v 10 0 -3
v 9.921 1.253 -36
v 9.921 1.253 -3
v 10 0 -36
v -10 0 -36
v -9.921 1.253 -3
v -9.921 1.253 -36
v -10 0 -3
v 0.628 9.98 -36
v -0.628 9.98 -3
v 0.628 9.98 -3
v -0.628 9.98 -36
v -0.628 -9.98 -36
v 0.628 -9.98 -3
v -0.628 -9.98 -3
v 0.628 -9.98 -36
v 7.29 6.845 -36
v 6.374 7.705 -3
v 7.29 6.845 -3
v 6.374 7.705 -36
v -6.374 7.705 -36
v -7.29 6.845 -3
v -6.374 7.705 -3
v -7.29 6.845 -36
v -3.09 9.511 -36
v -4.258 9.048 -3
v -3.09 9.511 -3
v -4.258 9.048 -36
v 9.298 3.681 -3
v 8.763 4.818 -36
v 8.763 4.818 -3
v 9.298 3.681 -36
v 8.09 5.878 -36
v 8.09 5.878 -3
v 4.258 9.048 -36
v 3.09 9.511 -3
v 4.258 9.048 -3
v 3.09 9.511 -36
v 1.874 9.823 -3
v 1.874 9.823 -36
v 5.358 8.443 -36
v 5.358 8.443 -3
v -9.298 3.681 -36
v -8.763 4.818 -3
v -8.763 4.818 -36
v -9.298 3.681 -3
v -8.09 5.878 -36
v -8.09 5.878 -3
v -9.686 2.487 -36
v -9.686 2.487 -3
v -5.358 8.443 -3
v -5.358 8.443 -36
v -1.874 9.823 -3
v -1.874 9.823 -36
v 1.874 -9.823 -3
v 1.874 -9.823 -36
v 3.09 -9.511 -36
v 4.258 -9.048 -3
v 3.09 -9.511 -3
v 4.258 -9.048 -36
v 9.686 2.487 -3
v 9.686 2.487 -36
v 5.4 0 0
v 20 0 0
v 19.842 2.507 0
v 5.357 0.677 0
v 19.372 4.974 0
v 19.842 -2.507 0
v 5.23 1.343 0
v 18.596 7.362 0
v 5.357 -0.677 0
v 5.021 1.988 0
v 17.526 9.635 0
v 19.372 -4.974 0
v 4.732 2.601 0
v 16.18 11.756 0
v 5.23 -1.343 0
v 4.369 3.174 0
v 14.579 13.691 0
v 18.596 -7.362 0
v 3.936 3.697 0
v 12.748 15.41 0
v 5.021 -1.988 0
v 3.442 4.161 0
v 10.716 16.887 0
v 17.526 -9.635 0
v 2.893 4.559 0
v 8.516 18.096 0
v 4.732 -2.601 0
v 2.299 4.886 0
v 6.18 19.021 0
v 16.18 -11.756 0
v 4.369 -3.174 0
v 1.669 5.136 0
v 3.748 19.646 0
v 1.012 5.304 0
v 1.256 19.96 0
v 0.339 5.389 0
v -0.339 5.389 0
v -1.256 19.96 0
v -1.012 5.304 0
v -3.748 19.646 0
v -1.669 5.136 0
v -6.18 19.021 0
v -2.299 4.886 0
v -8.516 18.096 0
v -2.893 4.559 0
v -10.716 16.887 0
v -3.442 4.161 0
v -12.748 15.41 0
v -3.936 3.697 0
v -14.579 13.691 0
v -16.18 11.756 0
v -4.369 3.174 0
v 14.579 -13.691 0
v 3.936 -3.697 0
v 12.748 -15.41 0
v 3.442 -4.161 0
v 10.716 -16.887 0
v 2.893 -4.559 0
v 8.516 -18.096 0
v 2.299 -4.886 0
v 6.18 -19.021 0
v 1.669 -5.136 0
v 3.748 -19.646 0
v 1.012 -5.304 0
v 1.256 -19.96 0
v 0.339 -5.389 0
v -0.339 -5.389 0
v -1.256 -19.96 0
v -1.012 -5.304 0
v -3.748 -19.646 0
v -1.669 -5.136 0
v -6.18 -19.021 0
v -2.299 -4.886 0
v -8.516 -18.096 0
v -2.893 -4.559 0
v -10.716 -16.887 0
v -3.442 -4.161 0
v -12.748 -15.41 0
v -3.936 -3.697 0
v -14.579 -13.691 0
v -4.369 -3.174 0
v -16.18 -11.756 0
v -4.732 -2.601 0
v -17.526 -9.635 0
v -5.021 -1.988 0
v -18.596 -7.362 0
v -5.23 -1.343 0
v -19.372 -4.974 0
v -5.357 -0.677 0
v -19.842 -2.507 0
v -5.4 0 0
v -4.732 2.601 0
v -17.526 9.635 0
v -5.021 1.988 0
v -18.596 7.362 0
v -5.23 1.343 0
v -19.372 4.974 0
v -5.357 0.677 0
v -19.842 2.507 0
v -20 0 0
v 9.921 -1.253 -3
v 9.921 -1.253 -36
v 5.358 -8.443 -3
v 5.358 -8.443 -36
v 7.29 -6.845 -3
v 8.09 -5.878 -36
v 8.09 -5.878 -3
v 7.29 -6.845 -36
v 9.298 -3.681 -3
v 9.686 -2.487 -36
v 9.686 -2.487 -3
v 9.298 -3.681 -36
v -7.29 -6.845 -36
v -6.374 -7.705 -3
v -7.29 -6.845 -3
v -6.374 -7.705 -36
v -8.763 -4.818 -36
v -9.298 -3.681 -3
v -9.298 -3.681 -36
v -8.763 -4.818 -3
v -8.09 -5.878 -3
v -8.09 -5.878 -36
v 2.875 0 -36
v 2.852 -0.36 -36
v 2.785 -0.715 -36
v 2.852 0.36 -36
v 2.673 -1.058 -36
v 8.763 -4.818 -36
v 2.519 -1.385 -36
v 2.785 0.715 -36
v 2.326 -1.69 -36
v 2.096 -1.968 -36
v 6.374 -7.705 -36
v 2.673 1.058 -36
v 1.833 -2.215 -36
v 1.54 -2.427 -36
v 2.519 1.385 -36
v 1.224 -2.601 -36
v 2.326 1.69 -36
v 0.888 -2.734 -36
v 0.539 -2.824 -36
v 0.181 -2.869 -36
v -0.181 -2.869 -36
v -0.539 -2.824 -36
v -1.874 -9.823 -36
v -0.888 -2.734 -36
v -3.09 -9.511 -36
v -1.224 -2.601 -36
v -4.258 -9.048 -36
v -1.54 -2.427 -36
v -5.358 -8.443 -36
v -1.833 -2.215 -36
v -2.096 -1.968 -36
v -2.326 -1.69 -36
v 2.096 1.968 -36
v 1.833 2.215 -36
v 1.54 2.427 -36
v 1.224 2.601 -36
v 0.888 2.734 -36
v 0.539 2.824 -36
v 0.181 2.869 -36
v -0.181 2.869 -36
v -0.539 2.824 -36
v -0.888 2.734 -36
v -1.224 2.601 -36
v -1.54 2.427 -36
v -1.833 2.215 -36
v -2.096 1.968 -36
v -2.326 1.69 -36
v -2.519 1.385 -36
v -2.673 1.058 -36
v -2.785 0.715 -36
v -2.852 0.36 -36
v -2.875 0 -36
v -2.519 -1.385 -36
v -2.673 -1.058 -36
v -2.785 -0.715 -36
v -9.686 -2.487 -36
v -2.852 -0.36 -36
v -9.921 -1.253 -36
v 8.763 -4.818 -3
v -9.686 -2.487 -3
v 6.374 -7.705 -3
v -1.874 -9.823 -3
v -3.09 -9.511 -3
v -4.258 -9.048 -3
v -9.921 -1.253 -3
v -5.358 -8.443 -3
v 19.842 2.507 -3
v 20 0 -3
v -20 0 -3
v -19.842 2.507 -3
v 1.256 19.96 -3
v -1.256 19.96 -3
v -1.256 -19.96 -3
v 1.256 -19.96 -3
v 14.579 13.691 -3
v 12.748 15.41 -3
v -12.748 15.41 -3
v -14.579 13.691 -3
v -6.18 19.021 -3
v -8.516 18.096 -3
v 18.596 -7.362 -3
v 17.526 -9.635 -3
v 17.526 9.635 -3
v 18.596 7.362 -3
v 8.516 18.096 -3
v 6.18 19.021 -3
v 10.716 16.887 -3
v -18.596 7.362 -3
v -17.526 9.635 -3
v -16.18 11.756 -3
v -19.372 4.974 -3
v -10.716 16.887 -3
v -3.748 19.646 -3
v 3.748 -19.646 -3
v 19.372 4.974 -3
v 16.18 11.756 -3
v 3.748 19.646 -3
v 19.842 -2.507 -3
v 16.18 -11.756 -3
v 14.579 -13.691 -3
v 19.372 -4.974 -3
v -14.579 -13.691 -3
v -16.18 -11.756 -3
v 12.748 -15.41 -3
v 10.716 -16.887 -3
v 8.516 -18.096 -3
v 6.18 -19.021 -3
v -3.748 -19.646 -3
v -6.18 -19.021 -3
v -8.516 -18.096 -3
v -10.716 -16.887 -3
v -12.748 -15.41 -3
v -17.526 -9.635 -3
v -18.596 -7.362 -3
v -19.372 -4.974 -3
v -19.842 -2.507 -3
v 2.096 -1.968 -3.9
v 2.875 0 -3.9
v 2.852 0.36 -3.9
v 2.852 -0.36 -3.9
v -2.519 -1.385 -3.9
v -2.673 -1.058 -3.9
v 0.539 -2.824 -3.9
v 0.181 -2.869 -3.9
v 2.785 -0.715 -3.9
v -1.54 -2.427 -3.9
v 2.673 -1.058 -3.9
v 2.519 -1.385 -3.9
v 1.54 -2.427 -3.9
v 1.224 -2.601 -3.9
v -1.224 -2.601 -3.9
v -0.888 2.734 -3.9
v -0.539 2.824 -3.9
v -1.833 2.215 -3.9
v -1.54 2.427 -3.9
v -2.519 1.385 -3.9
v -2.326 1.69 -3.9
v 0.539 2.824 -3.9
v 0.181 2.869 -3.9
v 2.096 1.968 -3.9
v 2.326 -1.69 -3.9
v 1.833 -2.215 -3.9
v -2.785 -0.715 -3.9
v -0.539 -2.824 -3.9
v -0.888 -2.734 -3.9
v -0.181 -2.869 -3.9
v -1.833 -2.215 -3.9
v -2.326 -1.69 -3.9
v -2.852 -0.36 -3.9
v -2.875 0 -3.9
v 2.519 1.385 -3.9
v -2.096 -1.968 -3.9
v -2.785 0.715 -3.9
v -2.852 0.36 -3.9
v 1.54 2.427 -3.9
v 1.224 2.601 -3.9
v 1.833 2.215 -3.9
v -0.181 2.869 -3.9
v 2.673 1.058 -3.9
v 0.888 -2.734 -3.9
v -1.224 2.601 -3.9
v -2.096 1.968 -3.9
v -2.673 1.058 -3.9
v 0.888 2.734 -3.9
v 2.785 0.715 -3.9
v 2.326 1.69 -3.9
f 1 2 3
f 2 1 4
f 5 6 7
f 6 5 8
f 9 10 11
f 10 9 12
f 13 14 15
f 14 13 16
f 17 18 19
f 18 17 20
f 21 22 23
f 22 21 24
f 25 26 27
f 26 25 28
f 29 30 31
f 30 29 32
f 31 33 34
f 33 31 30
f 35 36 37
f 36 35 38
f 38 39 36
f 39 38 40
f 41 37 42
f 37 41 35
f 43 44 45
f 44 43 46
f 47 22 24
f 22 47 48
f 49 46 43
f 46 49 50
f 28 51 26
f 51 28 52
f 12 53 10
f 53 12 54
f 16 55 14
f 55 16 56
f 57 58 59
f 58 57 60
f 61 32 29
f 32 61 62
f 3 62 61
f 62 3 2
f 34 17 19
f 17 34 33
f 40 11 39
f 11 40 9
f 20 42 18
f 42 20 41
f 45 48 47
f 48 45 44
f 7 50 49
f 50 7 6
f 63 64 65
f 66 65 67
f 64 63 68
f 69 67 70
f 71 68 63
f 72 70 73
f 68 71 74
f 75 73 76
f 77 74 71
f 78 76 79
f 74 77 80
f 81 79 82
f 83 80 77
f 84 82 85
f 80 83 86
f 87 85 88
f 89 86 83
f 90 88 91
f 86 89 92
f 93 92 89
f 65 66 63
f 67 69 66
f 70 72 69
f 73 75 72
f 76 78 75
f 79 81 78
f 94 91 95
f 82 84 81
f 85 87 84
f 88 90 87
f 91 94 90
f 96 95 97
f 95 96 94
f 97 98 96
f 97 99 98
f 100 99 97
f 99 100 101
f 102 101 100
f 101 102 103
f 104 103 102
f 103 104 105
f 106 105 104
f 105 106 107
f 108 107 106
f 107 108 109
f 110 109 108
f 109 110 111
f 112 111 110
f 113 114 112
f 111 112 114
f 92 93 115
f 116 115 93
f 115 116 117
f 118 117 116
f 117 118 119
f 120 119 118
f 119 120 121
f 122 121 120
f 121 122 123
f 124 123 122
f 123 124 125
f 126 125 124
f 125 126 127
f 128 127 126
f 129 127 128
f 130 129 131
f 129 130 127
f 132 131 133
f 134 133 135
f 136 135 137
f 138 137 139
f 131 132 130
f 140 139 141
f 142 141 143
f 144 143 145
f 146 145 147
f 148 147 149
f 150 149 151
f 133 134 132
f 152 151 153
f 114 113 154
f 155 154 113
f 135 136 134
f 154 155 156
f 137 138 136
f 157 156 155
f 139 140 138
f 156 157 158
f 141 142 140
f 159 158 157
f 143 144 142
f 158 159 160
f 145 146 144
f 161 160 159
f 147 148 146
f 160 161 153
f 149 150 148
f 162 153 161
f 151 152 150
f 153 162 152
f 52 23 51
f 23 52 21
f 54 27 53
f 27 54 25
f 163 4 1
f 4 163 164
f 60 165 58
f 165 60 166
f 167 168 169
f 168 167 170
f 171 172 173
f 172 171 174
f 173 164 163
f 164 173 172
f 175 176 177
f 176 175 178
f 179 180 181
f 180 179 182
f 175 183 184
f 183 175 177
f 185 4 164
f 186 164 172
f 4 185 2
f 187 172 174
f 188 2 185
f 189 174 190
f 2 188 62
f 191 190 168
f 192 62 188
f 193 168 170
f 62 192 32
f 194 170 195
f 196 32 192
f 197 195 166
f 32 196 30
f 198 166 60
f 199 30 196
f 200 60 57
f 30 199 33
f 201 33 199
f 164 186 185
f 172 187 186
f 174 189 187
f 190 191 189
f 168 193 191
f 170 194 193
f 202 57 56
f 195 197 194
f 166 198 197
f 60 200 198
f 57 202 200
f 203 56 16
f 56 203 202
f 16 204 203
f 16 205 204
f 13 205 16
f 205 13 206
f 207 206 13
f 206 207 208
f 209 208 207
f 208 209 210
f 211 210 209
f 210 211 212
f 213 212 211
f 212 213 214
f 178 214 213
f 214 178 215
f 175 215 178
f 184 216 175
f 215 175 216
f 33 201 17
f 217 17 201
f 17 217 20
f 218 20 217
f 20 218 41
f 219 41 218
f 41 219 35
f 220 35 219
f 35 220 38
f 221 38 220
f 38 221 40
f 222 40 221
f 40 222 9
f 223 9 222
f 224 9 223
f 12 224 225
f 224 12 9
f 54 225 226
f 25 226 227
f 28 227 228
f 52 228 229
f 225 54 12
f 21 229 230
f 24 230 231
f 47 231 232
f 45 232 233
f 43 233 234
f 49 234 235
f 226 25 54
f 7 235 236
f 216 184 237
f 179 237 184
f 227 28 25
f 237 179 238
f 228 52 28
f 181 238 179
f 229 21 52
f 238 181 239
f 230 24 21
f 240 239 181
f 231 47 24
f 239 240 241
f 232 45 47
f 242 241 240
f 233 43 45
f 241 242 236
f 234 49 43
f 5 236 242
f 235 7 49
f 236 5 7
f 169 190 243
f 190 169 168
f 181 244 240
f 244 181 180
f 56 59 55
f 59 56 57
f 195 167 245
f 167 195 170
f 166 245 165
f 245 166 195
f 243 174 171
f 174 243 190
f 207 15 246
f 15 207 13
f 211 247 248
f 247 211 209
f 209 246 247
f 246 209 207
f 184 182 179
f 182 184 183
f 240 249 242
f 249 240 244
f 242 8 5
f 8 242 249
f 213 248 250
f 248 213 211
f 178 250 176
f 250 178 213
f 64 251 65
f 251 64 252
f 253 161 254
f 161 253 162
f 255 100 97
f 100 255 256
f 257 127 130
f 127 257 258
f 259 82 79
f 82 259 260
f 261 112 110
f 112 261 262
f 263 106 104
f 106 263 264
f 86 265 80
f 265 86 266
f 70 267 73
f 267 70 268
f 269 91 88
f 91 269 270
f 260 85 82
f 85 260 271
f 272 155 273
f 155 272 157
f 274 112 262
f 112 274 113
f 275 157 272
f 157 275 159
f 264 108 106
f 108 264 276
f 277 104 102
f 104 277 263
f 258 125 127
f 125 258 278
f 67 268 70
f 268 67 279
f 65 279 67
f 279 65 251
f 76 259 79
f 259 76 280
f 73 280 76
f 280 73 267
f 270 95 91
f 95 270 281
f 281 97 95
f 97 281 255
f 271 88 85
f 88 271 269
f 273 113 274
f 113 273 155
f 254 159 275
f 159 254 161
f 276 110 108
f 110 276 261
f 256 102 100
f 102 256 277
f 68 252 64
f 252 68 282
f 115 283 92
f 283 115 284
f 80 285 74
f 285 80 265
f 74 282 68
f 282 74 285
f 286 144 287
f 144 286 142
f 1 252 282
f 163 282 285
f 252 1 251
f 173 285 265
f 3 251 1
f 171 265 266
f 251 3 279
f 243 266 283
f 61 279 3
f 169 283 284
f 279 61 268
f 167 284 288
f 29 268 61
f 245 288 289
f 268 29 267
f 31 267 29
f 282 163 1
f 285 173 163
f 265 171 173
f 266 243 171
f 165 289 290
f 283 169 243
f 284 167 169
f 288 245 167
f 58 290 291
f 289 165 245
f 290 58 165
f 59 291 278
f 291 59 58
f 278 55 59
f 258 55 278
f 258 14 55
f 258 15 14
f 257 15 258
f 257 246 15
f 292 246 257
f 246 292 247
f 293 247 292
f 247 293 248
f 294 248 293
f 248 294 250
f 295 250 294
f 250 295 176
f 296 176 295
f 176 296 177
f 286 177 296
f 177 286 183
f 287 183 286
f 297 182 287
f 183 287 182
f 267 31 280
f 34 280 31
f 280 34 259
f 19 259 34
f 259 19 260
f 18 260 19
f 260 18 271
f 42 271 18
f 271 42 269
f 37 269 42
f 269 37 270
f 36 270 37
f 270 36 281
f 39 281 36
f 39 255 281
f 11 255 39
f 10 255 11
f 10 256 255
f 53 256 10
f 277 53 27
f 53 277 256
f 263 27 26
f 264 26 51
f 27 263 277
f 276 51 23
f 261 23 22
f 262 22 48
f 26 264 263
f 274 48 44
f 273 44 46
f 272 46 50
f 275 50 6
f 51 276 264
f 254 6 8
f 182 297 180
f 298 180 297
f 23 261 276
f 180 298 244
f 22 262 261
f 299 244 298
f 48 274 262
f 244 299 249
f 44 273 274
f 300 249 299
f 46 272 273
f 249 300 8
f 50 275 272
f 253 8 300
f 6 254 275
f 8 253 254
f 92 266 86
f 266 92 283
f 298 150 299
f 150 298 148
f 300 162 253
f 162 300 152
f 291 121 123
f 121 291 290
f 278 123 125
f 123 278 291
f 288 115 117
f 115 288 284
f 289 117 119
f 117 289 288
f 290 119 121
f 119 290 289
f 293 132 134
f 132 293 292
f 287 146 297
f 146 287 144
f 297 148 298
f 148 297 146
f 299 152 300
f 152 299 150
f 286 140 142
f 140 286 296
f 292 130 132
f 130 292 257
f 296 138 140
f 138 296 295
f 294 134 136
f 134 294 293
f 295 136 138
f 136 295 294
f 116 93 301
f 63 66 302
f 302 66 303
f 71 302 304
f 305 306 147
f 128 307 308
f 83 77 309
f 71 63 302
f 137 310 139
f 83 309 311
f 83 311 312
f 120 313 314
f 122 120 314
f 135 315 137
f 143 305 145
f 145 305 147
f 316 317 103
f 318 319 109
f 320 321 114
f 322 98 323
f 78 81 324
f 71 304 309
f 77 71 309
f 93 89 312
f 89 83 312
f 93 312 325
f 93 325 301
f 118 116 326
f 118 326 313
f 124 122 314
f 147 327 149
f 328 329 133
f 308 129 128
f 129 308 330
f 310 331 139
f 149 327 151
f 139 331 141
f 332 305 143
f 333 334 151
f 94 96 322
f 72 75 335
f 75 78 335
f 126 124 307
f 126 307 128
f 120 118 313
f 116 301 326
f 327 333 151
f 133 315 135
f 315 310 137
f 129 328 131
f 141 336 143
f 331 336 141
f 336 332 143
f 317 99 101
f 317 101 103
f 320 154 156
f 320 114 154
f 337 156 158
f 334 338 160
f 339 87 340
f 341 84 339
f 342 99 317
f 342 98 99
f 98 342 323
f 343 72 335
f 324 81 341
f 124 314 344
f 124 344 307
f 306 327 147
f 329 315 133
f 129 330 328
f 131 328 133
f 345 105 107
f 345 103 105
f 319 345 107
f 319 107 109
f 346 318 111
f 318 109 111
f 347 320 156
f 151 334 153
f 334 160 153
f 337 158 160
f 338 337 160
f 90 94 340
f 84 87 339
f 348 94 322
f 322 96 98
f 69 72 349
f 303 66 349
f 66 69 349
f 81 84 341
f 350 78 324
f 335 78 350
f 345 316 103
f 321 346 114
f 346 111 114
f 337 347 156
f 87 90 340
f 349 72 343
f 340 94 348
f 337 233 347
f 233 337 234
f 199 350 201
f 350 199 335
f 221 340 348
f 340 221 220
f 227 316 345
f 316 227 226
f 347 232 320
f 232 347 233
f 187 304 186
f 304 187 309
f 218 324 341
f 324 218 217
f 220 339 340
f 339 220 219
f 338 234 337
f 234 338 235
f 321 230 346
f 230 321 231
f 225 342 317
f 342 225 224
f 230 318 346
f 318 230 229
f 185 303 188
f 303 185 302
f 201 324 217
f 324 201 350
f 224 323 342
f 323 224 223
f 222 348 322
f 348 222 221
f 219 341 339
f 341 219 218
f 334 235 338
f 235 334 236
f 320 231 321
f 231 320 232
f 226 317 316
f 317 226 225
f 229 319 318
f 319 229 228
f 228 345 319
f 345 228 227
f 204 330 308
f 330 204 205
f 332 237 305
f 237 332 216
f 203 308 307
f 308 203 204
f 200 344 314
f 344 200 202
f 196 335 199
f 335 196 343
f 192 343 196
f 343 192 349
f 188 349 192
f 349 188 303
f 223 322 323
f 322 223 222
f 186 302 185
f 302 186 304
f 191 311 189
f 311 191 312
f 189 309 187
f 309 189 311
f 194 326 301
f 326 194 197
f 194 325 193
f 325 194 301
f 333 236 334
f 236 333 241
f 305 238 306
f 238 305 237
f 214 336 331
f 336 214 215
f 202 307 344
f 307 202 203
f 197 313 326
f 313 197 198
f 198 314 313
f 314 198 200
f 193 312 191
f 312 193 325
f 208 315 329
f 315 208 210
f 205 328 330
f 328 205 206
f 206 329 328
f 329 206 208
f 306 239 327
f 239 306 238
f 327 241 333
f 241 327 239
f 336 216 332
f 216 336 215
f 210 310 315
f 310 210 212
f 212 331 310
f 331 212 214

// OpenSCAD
$fn = 50;


difference() {
	union() {
		translate(v = [0, 0, -36.0000000000]) {
			cylinder(h = 36, r = 10.0000000000);
		}
		translate(v = [0, 0, -3.0000000000]) {
			cylinder(h = 3, r = 20.0000000000);
		}
	}
	union() {
		translate(v = [0, 0, 0]) {
			rotate(a = [0, 0, 0]) {
				difference() {
					union() {
						#translate(v = [0, 0, -36.0000000000]) {
							cylinder(h = 36, r = 2.6000000000);
						}
						#translate(v = [0, 0, -3.9000000000]) {
							cylinder(h = 3.9000000000, r = 10.0000000000, r1 = 2.8750000000, r2 = 5.4000000000);
						}
						#translate(v = [0, 0, -36.0000000000]) {
							cylinder(h = 36, r = 2.8750000000);
						}
						#translate(v = [0, 0, -36.0000000000]) {
							cylinder(h = 36, r = 2.6000000000);
						}
					}
					union();
				}
			}
		}
	}
}
